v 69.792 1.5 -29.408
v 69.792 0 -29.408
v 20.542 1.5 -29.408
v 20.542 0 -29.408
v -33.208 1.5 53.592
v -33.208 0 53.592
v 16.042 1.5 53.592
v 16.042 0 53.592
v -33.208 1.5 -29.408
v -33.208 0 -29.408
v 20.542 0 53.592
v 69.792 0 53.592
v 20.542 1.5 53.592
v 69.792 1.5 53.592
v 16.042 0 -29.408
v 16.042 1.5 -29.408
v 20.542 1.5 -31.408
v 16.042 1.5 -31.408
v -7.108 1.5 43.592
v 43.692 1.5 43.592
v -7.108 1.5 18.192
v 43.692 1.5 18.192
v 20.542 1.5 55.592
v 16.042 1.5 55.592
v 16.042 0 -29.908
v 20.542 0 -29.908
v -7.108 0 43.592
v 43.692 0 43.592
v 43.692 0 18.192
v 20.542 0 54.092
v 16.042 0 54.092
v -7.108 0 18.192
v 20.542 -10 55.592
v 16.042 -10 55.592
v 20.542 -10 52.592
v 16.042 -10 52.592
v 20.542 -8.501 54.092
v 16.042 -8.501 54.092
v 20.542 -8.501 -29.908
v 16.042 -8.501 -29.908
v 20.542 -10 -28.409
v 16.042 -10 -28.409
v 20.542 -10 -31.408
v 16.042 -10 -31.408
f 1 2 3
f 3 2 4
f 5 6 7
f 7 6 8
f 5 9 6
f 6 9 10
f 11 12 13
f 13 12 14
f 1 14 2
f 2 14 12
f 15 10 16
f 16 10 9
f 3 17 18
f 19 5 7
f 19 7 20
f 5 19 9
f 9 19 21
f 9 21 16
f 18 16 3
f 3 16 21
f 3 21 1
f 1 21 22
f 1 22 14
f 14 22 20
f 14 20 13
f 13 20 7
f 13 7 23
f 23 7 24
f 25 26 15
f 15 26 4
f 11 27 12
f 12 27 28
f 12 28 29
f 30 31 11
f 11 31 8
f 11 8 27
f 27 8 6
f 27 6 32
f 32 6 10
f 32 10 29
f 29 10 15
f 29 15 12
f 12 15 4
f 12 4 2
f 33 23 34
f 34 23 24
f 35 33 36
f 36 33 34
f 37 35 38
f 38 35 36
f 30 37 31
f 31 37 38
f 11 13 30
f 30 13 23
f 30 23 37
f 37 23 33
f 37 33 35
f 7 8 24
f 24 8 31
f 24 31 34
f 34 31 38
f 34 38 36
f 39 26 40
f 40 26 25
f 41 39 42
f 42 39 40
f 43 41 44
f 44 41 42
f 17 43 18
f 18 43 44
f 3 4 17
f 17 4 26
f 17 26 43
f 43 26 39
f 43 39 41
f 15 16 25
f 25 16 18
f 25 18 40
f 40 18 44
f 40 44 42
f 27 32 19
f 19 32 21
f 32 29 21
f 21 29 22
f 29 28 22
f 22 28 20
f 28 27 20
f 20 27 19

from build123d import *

# Parameters (mm, degrees)
SKETCH1_W           = 103
SKETCH1_H           = 83
BOSS_EXTRUDE1_DEPTH = 1.5
BOSS_EXTRUDE2_DEPTH = 2.25
SKETCH3_W           = 50.8
SKETCH3_H           = 25.4
CUT_EXTRUDE1_DEPTH  = 1.5


with BuildPart() as part:
    # Sketch1 → Boss-Extrude1 (new body)
    with BuildSketch(Plane(origin=(0, 0, 0), x_dir=(1, 0, 0), z_dir=(0, 1, 0))):
        with Locations((18.292349727, -12.091530055)):
            Rectangle(SKETCH1_W, SKETCH1_H)
    extrude(amount=BOSS_EXTRUDE1_DEPTH)

    # Sketch2 → Boss-Extrude2 (add, symmetric)
    with BuildSketch(Plane(origin=(18.292349727, 0, 0), x_dir=(0, 0, -1), z_dir=(1, 0, 0))):
        Polygon((-53.591530055, 1.5), (-55.591530055, 1.5), (-55.591530055, -10), (-52.592463679, -10), (-54.091530055, -8.500933624), (-54.091530055, 0), (-53.591530055, 0), align=None)
        Polygon((29.408469945, 0), (29.408469945, 1.5), (31.408469945, 1.5), (31.408469945, -10), (28.409403569, -10), (29.908469945, -8.500933624), (29.908469945, 0), align=None)
    extrude(amount=BOSS_EXTRUDE2_DEPTH, both=True)

    # Sketch3 → Cut-Extrude1 (cut)
    with BuildSketch(Plane(origin=(0, 1.5, 0), x_dir=(1, 0, 0), z_dir=(0, 1, 0))):
        with Locations((18.292349727, -30.891530055)):
            Rectangle(SKETCH3_W, SKETCH3_H)
    extrude(amount=-CUT_EXTRUDE1_DEPTH, mode=Mode.SUBTRACT)


solid = part.part
